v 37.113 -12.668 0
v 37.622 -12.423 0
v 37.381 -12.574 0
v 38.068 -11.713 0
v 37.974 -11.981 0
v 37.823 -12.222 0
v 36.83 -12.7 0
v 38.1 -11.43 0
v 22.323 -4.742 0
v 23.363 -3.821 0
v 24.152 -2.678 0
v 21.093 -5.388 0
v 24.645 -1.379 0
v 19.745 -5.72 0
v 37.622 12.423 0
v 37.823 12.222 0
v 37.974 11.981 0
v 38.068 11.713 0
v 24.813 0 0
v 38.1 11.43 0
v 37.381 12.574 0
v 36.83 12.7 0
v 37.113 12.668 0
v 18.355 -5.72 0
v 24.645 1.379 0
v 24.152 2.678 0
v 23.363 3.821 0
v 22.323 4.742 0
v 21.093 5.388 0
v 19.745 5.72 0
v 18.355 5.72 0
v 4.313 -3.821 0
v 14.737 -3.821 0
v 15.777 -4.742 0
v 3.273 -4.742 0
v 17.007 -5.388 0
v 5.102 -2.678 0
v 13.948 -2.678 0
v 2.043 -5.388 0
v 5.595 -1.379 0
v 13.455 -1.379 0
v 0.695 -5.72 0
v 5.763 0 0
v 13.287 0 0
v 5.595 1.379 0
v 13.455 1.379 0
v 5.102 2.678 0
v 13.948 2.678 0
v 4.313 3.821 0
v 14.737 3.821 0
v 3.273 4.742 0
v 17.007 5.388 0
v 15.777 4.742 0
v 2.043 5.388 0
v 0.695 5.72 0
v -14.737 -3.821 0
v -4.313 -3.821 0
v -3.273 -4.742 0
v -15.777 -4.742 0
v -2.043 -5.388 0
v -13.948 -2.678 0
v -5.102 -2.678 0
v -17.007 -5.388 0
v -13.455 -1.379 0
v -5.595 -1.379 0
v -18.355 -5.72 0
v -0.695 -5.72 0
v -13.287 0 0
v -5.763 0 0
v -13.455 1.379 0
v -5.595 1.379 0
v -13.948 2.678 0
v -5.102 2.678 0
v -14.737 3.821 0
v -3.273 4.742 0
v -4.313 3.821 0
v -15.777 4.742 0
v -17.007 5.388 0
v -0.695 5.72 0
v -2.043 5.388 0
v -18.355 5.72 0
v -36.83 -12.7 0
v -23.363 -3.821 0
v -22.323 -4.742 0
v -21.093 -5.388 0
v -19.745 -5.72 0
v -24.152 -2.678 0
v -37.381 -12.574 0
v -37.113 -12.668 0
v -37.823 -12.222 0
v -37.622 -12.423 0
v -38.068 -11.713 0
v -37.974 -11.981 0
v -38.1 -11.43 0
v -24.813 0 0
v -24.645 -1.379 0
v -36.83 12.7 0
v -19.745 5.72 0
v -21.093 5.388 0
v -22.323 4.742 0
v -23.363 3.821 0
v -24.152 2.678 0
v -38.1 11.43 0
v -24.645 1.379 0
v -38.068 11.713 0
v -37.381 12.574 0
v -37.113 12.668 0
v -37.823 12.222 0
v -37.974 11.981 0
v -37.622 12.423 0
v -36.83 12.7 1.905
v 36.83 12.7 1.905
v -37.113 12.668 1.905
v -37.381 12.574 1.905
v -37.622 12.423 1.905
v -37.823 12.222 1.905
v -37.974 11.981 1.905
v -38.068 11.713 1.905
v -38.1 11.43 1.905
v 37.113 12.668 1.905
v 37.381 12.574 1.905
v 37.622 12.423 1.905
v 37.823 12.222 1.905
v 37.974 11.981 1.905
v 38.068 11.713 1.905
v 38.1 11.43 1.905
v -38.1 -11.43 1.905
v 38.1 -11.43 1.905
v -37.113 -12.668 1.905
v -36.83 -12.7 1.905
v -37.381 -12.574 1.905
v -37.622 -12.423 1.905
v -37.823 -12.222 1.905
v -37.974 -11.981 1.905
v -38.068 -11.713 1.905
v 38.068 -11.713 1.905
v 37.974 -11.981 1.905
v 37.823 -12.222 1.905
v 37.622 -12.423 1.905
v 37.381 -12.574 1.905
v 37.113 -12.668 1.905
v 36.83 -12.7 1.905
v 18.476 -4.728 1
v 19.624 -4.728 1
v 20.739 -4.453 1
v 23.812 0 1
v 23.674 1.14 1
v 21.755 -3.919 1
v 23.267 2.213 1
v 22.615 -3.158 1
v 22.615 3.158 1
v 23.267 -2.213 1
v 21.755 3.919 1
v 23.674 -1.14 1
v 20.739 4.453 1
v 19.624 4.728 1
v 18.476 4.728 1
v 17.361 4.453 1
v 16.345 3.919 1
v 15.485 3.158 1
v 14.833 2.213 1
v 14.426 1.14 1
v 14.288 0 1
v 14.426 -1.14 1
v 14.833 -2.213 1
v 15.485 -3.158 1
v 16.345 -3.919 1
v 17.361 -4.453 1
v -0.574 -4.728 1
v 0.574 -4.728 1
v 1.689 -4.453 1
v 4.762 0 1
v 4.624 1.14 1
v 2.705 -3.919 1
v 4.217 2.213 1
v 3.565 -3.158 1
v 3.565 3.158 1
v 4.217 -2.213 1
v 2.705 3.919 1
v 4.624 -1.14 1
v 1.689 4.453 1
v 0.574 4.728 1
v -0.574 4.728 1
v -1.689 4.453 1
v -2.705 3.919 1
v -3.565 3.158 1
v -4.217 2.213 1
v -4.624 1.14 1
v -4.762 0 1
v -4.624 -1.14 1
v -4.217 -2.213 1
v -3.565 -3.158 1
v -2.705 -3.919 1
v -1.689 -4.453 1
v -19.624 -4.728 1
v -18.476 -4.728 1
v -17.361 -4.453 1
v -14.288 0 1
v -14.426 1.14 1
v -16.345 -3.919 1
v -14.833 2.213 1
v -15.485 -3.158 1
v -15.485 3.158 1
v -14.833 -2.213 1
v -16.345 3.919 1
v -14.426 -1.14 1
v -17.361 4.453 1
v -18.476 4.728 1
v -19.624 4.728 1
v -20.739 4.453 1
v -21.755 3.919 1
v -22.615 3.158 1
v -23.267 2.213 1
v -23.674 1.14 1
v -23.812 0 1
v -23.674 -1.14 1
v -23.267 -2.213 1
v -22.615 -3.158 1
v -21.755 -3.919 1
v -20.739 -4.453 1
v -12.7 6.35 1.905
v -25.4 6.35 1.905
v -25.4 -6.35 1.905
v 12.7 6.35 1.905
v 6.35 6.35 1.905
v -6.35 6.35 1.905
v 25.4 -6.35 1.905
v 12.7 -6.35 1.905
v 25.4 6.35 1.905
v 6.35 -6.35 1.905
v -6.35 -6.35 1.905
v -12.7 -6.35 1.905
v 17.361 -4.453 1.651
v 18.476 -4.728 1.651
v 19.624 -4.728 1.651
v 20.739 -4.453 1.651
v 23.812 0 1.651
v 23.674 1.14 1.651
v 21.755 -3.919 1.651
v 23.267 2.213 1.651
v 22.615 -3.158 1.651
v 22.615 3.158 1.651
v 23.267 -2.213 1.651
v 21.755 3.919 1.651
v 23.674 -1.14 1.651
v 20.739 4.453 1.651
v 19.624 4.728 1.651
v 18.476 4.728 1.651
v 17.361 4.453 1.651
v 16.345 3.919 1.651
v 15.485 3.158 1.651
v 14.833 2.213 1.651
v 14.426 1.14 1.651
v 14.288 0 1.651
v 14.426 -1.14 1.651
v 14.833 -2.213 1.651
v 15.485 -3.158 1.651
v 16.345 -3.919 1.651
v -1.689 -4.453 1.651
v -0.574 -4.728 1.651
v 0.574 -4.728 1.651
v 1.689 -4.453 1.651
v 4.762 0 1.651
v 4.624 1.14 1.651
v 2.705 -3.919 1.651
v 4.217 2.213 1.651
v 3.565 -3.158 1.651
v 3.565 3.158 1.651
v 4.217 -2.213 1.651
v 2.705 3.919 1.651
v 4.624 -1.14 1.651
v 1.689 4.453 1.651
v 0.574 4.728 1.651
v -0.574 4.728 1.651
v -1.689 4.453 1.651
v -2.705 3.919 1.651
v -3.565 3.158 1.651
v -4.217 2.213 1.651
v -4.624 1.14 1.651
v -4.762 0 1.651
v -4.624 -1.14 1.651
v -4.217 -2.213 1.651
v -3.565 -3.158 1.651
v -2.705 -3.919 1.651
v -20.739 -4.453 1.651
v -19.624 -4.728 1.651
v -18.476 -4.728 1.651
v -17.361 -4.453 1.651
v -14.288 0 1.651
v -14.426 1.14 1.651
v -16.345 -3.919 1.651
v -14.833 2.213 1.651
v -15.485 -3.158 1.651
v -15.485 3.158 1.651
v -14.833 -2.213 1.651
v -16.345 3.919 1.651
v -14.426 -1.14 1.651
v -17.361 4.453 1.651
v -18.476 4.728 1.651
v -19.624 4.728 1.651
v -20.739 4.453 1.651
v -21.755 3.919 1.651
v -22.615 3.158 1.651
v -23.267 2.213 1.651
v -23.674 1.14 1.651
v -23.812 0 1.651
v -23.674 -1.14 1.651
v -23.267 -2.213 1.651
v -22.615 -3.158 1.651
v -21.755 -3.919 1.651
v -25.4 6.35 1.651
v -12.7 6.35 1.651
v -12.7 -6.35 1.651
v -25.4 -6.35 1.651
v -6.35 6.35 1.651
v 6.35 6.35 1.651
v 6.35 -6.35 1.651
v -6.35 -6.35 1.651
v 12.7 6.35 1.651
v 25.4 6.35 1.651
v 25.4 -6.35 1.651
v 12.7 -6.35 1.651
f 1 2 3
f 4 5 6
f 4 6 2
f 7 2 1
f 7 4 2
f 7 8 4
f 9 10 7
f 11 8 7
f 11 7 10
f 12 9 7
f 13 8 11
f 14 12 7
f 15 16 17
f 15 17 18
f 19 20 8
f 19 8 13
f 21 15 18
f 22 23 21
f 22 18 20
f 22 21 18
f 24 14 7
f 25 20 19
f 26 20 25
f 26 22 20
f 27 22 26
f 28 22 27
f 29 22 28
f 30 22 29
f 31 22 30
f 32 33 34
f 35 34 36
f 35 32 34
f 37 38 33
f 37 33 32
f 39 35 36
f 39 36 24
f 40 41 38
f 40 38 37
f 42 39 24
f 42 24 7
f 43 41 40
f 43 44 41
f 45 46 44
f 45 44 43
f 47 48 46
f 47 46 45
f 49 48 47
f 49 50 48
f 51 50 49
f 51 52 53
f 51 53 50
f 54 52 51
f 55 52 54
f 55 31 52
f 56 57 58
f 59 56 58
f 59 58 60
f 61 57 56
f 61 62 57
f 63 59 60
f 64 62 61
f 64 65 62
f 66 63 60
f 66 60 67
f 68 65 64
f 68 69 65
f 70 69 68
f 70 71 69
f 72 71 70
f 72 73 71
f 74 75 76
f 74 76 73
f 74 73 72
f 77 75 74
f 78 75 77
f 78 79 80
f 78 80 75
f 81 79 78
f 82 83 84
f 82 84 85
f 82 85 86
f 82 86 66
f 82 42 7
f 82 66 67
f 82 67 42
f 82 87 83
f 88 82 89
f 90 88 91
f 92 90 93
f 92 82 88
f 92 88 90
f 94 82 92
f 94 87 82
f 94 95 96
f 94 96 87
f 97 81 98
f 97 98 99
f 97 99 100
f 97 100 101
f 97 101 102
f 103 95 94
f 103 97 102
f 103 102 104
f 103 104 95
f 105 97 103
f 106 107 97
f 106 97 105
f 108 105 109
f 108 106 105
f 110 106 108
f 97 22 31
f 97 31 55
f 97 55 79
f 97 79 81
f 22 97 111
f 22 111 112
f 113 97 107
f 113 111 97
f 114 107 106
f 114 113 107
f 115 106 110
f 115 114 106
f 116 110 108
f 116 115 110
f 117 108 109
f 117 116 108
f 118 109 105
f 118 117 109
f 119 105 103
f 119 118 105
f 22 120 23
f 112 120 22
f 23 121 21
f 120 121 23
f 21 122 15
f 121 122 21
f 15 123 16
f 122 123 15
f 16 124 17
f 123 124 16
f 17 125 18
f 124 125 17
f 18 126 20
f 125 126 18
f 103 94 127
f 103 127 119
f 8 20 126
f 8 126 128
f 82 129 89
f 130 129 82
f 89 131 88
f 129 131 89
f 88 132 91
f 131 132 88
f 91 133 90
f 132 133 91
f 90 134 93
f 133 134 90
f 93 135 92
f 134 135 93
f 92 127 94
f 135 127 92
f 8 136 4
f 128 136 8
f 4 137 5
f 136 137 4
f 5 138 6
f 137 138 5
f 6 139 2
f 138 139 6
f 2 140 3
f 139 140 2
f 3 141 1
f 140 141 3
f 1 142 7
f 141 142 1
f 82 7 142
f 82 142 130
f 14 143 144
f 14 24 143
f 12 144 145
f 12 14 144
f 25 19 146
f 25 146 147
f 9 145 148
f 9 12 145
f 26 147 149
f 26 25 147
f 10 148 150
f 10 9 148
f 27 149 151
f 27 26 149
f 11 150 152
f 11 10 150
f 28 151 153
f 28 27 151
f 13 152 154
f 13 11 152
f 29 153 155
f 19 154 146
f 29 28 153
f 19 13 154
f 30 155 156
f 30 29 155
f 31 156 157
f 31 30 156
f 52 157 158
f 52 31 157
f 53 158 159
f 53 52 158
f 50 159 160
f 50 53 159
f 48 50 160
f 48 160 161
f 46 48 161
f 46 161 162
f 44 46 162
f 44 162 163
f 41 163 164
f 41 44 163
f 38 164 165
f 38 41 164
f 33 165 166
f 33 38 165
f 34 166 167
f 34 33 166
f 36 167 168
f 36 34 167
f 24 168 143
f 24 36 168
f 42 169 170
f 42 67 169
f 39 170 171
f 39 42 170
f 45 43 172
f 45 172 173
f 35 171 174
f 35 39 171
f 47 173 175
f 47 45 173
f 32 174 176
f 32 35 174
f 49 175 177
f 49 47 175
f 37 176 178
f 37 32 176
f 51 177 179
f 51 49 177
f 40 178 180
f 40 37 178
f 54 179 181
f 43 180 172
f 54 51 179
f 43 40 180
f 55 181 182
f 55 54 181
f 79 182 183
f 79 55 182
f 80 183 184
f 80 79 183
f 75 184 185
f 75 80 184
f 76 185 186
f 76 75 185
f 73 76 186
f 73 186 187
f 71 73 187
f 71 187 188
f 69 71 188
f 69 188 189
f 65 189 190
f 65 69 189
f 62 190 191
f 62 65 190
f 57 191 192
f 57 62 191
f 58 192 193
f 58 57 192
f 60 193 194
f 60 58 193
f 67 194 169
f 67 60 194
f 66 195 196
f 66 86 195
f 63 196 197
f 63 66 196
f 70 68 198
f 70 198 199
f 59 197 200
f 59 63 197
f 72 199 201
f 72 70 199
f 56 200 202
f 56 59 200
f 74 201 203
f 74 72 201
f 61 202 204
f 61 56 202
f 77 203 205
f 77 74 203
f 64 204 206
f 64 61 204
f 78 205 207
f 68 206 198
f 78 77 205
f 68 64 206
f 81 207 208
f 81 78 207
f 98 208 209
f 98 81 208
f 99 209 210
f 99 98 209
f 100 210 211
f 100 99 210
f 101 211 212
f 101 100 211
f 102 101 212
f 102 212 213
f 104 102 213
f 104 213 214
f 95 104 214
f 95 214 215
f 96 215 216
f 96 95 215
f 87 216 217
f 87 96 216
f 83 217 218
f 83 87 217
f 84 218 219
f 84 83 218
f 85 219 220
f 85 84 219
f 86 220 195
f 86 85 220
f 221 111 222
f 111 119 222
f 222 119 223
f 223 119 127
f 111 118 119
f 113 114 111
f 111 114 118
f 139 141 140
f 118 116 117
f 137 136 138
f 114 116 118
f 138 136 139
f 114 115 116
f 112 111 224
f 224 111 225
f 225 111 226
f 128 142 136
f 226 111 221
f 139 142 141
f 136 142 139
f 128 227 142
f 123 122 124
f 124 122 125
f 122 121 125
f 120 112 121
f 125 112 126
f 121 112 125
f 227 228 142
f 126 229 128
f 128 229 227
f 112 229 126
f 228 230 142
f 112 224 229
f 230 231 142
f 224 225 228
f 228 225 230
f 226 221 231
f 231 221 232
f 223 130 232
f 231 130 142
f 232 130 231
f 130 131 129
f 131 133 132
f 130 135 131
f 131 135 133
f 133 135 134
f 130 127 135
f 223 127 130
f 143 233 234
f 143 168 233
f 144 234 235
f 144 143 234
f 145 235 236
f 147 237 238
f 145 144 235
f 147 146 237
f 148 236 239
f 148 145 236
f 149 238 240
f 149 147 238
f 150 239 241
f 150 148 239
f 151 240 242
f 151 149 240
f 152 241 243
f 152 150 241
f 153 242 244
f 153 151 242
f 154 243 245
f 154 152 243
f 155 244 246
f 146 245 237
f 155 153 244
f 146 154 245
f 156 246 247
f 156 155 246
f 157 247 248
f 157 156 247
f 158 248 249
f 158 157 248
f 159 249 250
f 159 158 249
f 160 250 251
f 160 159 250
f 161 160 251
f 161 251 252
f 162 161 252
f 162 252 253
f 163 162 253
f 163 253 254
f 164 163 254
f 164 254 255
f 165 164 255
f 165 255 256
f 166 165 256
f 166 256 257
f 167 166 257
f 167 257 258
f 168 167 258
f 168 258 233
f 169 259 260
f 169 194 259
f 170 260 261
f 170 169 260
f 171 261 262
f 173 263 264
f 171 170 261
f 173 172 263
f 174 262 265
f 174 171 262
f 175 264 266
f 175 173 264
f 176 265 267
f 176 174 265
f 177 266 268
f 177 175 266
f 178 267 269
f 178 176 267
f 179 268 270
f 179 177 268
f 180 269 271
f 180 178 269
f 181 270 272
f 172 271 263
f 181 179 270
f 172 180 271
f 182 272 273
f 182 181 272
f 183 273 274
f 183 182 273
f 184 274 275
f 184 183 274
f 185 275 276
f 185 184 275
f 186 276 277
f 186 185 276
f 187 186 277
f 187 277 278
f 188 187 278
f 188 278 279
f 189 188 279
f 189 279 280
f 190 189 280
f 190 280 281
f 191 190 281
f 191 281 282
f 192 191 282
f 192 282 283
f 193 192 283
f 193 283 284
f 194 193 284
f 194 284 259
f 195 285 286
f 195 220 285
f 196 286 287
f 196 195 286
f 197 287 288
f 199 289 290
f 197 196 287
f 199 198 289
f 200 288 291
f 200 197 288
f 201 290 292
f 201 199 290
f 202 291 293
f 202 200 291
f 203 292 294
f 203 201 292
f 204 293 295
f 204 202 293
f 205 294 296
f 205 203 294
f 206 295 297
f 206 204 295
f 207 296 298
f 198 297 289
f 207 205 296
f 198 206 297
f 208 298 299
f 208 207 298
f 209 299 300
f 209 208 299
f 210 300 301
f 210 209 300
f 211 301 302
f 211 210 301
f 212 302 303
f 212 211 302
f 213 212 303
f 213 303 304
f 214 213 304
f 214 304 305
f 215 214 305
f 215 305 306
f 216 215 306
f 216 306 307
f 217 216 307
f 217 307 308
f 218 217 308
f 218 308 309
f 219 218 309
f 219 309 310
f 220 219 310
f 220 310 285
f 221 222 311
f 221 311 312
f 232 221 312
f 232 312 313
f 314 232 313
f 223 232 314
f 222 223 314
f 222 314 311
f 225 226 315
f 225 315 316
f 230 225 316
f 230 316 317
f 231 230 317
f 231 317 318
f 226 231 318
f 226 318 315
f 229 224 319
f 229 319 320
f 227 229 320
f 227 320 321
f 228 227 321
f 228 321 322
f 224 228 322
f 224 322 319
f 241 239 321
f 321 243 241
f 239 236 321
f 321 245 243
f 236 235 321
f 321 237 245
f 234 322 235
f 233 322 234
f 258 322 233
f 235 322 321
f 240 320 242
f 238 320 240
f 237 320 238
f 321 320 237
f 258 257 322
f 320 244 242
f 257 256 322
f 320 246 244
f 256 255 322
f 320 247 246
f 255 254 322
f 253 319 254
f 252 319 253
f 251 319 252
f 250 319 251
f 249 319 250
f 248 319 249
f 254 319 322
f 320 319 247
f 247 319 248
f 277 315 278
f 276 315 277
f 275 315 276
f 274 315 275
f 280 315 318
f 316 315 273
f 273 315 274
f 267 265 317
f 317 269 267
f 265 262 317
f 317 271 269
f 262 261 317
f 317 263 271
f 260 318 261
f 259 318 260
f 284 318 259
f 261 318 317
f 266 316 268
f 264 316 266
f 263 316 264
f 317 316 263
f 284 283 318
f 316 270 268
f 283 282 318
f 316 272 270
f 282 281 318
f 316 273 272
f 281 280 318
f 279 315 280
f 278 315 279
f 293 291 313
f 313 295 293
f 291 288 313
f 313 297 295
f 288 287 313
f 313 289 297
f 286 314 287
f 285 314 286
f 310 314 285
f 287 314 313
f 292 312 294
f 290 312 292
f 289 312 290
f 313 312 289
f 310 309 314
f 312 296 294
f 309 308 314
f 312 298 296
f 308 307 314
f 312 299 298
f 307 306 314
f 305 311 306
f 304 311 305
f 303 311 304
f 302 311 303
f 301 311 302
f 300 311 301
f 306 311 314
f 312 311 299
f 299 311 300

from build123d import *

# Parameters (mm, degrees)
SKETCH_W     = 76.2
SKETCH_H     = 25.4
SKETCH_R     = 4.7625
PAD_DEPTH    = 1.905
CHAMFER_SIZE = 1.000001
SKETCH001_W  = 12.7
SKETCH001_H  = 12.7
POCKET_DEPTH = 0.254
FILLET_R     = 1.27


with BuildPart() as part:
    # Sketch → Pad (new body)
    with BuildSketch(Plane.XY):
        Rectangle(SKETCH_W, SKETCH_H)
        Circle(SKETCH_R, mode=Mode.SUBTRACT)
        with Locations((-19.05, 0)):
            Circle(SKETCH_R, mode=Mode.SUBTRACT)
        with Locations((19.05, 0)):
            Circle(SKETCH_R, mode=Mode.SUBTRACT)
    extrude(amount=PAD_DEPTH)

    # Chamfer
    chamfer_edges = [part.edges().sort_by_distance(p)[0] for p in [
        (14.2875, 0, 0),
        (-4.7625, 0, 0),
        (-23.8125, 0, 0),
    ]]
    chamfer(chamfer_edges, length=CHAMFER_SIZE)

    # Sketch001 (on Face3 of Chamfer) → Pocket (cut)
    with BuildSketch(Plane.XY.offset(1.905)):
        Rectangle(SKETCH001_W, SKETCH001_H)
        with Locations((-19.05, 0)):
            Rectangle(SKETCH001_W, SKETCH001_H)
        with Locations((19.05, 0)):
            Rectangle(SKETCH001_W, SKETCH001_H)
    extrude(amount=-POCKET_DEPTH, mode=Mode.SUBTRACT)

    # Fillet
    fillet_edges = [part.edges().sort_by_distance(p)[0] for p in [
        (38.1, 12.7, 0.9525),
        (38.1, -12.7, 0.9525),
        (-38.1, 12.7, 0.9525),
        (-38.1, -12.7, 0.9525),
    ]]
    fillet(fillet_edges, radius=FILLET_R)


solid = part.part
